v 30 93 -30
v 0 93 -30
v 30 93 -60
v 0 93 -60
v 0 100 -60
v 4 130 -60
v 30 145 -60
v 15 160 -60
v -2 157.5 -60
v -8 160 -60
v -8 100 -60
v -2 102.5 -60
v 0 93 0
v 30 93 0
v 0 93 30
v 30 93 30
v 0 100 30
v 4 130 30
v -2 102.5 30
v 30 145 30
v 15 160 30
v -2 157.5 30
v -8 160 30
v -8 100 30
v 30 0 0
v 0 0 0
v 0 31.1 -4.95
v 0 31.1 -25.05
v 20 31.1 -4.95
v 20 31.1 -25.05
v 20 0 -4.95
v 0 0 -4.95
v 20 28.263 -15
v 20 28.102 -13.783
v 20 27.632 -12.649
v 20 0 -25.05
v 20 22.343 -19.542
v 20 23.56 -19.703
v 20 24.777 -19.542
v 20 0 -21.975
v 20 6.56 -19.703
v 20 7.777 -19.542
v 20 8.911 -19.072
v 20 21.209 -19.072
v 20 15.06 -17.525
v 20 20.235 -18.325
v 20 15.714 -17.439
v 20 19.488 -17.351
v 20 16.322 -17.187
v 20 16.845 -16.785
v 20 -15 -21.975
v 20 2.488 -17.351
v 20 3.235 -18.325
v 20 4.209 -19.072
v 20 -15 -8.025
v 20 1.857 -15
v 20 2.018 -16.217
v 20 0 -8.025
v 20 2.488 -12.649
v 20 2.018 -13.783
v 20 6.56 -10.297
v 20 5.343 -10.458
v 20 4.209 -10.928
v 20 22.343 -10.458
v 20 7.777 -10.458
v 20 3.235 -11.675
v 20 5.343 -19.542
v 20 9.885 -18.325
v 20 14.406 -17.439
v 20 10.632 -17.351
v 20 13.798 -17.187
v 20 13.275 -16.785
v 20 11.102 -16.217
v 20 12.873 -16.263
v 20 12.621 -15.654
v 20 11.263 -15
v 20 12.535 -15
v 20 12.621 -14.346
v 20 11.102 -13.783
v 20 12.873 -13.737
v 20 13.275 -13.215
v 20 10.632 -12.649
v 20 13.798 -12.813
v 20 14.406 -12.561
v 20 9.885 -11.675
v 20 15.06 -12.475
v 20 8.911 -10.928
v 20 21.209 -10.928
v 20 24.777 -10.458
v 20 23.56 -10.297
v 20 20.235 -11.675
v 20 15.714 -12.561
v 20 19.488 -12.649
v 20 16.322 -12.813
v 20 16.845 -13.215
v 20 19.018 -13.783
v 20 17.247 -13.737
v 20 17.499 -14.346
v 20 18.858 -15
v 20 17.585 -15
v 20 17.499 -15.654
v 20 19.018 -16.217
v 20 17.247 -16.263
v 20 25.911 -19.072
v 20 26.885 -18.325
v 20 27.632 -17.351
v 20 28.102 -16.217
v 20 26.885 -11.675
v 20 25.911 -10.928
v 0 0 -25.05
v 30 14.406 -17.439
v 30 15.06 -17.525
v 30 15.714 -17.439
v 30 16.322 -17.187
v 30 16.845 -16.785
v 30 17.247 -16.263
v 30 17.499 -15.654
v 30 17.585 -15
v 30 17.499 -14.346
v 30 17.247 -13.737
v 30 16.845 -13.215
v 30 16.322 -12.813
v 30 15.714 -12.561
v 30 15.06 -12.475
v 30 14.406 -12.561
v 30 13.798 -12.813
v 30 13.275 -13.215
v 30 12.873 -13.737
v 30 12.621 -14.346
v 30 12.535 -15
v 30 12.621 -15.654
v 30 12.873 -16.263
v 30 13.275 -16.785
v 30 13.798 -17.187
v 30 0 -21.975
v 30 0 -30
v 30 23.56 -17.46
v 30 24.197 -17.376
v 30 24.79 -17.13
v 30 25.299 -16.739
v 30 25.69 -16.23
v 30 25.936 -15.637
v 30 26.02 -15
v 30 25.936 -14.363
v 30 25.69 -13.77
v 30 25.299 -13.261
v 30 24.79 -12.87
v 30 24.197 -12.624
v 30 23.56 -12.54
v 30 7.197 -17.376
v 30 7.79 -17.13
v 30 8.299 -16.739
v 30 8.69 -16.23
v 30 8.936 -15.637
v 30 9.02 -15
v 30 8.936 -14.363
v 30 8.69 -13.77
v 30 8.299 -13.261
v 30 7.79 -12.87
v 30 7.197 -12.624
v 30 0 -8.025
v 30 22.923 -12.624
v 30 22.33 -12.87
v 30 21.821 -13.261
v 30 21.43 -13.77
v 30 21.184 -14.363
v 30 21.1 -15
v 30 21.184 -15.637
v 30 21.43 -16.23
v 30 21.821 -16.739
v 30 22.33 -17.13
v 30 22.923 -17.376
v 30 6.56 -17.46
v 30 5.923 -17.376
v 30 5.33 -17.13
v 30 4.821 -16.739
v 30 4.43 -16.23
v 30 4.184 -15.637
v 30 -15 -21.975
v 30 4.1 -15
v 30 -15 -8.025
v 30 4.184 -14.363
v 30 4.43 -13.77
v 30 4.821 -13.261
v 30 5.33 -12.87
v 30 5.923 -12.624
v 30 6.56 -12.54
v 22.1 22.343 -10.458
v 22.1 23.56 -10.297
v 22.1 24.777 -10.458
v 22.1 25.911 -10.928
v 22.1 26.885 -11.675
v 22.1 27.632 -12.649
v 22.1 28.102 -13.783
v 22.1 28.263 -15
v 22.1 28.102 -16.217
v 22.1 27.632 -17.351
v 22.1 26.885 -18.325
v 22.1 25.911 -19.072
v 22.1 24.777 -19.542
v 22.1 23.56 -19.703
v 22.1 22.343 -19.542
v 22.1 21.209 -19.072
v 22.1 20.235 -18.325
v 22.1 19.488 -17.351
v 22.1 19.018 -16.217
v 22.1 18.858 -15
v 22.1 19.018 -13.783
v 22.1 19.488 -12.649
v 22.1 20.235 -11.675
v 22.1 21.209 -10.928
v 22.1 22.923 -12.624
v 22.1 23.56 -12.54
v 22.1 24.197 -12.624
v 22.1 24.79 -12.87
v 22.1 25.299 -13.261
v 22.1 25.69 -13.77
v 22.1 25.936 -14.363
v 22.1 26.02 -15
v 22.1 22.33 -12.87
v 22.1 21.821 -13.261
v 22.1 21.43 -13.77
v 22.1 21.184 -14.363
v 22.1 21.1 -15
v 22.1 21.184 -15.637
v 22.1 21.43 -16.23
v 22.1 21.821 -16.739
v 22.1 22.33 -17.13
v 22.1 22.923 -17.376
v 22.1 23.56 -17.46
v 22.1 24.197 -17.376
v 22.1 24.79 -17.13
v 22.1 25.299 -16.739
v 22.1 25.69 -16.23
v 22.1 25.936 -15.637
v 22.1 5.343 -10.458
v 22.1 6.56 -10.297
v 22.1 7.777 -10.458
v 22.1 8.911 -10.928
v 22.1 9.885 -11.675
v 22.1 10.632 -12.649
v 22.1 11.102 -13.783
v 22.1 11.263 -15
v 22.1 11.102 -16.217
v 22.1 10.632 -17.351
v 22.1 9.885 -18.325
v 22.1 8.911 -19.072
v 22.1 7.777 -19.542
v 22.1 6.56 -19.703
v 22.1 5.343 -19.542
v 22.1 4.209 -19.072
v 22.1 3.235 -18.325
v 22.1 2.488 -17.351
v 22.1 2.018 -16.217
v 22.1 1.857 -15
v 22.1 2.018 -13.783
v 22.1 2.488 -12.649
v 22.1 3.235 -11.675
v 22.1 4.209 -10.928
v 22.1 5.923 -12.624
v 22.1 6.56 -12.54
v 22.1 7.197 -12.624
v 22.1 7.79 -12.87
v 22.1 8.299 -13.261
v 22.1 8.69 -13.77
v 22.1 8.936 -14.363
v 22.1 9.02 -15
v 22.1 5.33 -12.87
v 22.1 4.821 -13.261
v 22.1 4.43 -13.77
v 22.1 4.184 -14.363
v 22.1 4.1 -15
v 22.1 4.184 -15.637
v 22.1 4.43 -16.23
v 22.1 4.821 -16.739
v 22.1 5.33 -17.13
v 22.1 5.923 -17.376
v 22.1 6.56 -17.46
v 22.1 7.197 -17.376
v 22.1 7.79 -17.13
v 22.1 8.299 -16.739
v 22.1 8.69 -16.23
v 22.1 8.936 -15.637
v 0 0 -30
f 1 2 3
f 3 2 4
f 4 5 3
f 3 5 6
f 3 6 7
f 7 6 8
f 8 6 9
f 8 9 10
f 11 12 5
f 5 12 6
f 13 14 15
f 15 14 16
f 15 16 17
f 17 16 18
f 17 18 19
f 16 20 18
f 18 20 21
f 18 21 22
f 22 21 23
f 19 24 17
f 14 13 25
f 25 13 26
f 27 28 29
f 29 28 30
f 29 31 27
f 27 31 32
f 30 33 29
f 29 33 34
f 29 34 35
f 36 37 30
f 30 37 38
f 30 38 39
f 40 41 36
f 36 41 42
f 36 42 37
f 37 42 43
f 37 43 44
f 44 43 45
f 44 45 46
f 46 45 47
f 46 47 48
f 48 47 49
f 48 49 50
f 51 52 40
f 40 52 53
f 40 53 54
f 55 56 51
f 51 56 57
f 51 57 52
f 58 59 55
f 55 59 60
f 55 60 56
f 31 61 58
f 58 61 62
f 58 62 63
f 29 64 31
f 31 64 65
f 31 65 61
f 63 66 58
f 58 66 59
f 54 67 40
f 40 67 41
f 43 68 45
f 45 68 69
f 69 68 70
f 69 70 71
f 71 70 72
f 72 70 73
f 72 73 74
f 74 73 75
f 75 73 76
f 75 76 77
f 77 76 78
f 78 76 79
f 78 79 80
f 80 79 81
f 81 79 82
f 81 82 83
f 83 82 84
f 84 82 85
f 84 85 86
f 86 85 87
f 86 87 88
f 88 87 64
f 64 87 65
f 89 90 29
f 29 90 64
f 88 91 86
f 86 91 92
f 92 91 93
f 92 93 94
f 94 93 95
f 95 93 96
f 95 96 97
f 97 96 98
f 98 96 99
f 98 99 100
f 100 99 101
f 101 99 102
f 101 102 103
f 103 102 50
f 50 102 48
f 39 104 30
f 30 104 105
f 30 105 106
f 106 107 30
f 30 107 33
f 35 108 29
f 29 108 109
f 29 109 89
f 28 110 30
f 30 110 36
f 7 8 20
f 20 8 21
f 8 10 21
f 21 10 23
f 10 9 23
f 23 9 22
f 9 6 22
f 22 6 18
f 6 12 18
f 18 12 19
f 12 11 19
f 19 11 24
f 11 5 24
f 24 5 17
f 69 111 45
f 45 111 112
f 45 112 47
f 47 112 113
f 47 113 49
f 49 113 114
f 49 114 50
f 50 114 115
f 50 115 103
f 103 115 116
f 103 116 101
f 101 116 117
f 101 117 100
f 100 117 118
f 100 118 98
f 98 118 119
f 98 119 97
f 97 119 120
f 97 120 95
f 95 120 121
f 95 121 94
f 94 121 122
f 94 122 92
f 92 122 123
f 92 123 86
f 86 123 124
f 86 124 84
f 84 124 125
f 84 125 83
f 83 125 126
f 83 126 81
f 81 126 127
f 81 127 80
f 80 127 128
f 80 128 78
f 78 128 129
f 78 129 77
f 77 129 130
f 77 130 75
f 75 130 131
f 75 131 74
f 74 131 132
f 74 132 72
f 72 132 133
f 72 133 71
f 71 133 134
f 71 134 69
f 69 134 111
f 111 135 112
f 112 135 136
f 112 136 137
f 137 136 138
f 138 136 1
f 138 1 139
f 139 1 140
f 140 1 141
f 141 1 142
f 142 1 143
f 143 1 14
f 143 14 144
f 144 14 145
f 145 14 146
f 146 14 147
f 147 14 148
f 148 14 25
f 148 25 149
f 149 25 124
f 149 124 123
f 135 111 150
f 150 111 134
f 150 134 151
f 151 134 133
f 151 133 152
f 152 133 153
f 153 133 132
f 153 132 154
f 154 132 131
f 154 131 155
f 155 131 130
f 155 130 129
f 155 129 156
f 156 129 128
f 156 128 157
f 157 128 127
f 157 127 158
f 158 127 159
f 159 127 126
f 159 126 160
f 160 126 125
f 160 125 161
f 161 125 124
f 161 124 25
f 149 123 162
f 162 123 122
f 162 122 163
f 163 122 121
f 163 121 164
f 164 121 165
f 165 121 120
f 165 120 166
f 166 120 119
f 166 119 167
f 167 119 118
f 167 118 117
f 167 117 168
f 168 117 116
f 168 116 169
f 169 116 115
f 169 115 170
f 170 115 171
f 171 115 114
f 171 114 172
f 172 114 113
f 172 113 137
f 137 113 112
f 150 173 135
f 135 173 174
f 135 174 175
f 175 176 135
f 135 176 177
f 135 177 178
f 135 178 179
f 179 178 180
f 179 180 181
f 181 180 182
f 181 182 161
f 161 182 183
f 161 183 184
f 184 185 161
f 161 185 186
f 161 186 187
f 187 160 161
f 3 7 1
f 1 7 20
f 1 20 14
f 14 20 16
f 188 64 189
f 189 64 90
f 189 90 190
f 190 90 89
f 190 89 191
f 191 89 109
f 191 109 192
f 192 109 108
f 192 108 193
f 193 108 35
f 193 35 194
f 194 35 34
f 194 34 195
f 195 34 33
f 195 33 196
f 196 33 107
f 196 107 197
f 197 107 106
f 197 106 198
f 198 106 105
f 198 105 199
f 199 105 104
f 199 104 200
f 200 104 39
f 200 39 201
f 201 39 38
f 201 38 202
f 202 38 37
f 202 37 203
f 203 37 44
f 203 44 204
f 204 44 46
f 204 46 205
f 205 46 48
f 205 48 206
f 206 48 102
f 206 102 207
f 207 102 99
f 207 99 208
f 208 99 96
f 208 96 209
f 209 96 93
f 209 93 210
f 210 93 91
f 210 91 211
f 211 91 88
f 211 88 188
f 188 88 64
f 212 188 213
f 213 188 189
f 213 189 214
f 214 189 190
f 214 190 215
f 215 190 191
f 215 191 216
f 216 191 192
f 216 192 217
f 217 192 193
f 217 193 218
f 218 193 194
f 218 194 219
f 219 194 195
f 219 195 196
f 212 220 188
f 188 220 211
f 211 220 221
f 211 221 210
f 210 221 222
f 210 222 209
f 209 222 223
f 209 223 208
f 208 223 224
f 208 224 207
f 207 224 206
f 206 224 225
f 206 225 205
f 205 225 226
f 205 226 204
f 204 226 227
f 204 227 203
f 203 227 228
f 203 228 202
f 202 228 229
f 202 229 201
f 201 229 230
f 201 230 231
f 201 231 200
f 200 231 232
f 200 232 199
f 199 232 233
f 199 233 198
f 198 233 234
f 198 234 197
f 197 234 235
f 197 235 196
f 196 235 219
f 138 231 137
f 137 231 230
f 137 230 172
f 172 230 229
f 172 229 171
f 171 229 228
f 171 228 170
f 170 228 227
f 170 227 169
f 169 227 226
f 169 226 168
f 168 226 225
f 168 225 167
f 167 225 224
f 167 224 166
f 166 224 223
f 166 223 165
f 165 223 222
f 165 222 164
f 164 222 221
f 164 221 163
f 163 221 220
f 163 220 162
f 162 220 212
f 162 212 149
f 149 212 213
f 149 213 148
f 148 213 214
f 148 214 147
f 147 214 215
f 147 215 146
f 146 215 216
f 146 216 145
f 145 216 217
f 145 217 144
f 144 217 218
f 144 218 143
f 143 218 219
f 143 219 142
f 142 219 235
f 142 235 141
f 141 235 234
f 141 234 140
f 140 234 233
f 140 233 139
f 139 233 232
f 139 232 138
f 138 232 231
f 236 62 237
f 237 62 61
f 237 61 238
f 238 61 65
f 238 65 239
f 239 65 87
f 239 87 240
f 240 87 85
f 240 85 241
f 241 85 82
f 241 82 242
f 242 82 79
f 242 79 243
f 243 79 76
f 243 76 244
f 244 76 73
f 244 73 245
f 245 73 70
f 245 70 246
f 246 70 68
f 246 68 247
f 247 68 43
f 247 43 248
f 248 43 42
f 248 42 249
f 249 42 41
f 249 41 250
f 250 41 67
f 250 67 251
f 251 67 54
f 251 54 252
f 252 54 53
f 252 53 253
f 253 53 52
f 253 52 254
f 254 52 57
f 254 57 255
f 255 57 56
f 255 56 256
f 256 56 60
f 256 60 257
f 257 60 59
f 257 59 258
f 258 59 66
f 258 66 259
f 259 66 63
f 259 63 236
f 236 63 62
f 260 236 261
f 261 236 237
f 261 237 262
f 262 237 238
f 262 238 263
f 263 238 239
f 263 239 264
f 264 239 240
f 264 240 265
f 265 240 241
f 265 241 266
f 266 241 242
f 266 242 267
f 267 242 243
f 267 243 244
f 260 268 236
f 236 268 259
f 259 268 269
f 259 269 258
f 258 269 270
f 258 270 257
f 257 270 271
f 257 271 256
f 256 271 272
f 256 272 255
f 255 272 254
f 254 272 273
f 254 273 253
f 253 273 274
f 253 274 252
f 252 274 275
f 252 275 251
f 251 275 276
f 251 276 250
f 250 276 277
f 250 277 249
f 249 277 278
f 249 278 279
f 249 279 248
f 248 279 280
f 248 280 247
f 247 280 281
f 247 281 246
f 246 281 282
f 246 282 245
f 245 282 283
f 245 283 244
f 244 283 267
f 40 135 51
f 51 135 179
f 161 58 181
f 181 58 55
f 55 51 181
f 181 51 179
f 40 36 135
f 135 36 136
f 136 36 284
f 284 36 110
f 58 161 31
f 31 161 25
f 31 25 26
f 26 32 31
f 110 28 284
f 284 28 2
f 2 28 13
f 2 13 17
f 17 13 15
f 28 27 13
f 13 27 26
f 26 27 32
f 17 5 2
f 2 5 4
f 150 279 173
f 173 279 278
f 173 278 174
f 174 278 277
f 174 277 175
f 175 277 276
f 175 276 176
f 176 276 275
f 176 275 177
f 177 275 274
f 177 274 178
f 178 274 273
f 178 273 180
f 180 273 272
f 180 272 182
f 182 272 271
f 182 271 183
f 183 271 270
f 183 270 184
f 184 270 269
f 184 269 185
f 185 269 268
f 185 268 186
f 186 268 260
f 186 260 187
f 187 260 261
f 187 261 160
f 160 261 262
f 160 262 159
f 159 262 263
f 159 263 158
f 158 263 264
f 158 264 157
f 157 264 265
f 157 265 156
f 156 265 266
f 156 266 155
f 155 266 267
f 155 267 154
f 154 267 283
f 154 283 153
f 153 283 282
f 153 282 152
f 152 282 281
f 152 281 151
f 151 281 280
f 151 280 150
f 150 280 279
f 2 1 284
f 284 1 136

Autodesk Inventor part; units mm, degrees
ref_plane "YZ Plane" through (0, 0, 0) normal (1, 0, 0) x (0, 1, 0)
ref_plane "XZ Plane" through (0, 0, 0) normal (0, 1, 0) x (-1, 0, 0)
sketch "Sketch1" plane through (0, 0, 0) normal (0, 0, 1) x (1, 0, 0)
  line L0 (0, 0) -> (25, 0)
  line L1 (25, 0) -> (25, 40)
  line L2 (25, 40) -> (0, 40)
  line L3 (0, 40) -> (0, 0)
  dimension "d1" = 25
  dimension "d2" = 40
  dimension "d3" = 25
extrude "Extrusion1" add sketch "Sketch1" against normal blind 30
sketch "Sketch2" plane through (25, 0, 0) normal (1, 0, 0) x (0, 0, -1)
  line L0 (0, 0) -> (30, 0) projected
  circle A0 centre (15, 6.56) radius 2.46
extrude "Extrusion2" cut sketch "Sketch2" against normal blind 30
sketch "Sketch3" plane through (0, 0, 0) normal (-1, 0, 0) x (0, 0, 1)
  line L0 (0, 0) -> (-30, 0) projected
  line L1 (-25.05, 0) -> (-4.95, 0)
  line L2 (-4.95, 0) -> (-4.95, 33.12)
  line L3 (-4.95, 33.12) -> (-25.05, 33.12)
  line L4 (-25.05, 33.12) -> (-25.05, 0)
  dimension "d11" = 20.1
extrude "Extrusion3" cut sketch "Sketch3" against normal blind 20
sketch "Sketch4" plane through (0, 0, 0) normal (0, -1, 0) x (1, 0, 0)
  line L0 (20, -4.95) -> (20, -25.05) projected
  line L1 (20, -15) -> (25, -15)
  line L2 (25, 0) -> (25, -30) projected
  line L3 (20, -8.025) -> (25, -8.025)
  line L4 (25, -8.025) -> (25, -21.975)
  line L5 (25, -21.975) -> (20, -21.975)
  line L6 (20, -21.975) -> (20, -8.025)
  line L7 (20, -8.025) -> (25, -21.975) construction
  line L8 (25, -8.025) -> (20, -21.975) construction
  line L9 (25, -12.54) -> (25, -17.46) projected
  point P0 (0, 0)
  point P1 (22.5, -15)
  dimension "d14" = 13.95
extrude "Extrusion4" add sketch "Sketch4" along normal blind 15
sketch "Sketch5" plane through (20, 0, 0) normal (-1, 0, 0) x (0, 0, 1)
  circle A0 centre (-15, 6.56) radius 2.46 projected
  circle A1 centre (-15, 6.56) radius 4.7025
  circle A2 centre (-15, 6.56) radius 2.46 projected
  circle A3 centre (-15, 6.56) radius 2.46
  point P0 (0, 0)
  dimension "d17" = 9.405
extrude "Extrusion5" cut sketch "Sketch5" against normal blind 2.1
sketch "Sketch6" plane through (25, 0, 0) normal (1, 0, 0) x (0, 0, -1)
  circle A0 centre (15, 6.56) radius 4.7025 projected
  line L0 (15, 6.56) -> (15, 23.56)
  circle A1 centre (15, 23.56) radius 2.46
  point P0 (0, 0)
  dimension "d20" = 17
  dimension "d21" = 4.92
extrude "Extrusion6" cut sketch "Sketch6" against normal blind 10 contours A1
sketch "Sketch7" plane through (20, 0, 0) normal (-1, 0, 0) x (0, 0, 1)
  circle A0 centre (-15, 23.56) radius 2.46 projected
  circle A1 centre (-15, 23.56) radius 4.7025
  point P0 (0, 0)
  dimension "d24" = 9.405
extrude "Extrusion7" cut sketch "Sketch7" against normal blind 2.1
sketch "Sketch9" plane through (25, 0, 0) normal (1, 0, 0) x (0, 0, -1)
  circle A0 centre (15, 6.56) radius 2.46 projected
  circle A1 centre (15, 6.56) radius 2.46
  circle A2 centre (15, 23.56) radius 2.46 projected
  circle A3 centre (15, 23.56) radius 2.46
  line L0 (30, 40) -> (30, 0) projected
  line L1 (30, 0) -> (30, 40)
  line L2 (30, 40) -> (0, 40)
  line L3 (0, 40) -> (0, 0)
  line L4 (0, 0) -> (8.025, 0) projected
  line L5 (21.975, 0) -> (21.975, -15)
  line L6 (21.975, -15) -> (8.025, -15)
  line L7 (8.025, -15) -> (8.025, 0)
  line L8 (0, 0) -> (8.025, 0)
  line L9 (21.975, 0) -> (30, 0)
extrude "Extrusion8" add sketch "Sketch9" along normal blind 5
sketch "Sketch10" plane through (0, 40, 0) normal (0, 1, 0) x (1, 0, 0)
  line L0 (0, 30) -> (30, 30) projected
  line L1 (30, 0) -> (0, 0) projected
  line L2 (0, 30) -> (30, 30)
  line L3 (30, 30) -> (30, 0)
  line L4 (30, 0) -> (0, 0)
  line L5 (0, 0) -> (0, 30)
extrude "Extrusion9" add sketch "Sketch10" along normal blind 30
sketch "Sketch12" plane through (30, 0, 0) normal (1, 0, 0) x (0, 0, -1)
  circle A0 centre (15, 6.56) radius 2.46 projected
  line L0 (15, 6.56) -> (15, 15.06)
  circle A1 centre (15, 15.06) radius 2.525
  point P0 (0, 0)
  dimension "d31" = 8.5
  dimension "d33" = 5.05
extrude "Extrusion10" cut sketch "Sketch12" against normal blind 30 contours A1
sketch "Sketch14" plane through (0, 0, 0) normal (0, 0, 1) x (1, 0, 0)
  line L0 (30, 70) -> (0, 70) projected
  line L1 (0, 100) -> (-8, 100)
  line L2 (30, 0) -> (30, 70) projected
  line L3 (30, 118) -> (30, 70)
  line L4 (30, 105) -> (30, 100)
  line L5 (0, 70) -> (30, 70) projected
  line L6 (0, 70) -> (0, 100)
  line L7 (30, 122.5) -> (30, 118)
  line L8 (30, 70) -> (30, 145)
  line L9 (-2, 157.5) -> (-8, 160)
  line L10 (-2, 102.5) -> (-8, 100)
  line L11 (4, 130) -> (-2, 102.5)
  line L12 (4, 130) -> (-2, 157.5)
  line L13 (-8, 160) -> (15, 160)
  line L14 (30, 145) -> (15, 160)
  point P0 (0, 0)
  dimension "d47" = 30
extrude "Extrusion12" add sketch "Sketch14" against normal blind 30
sketch "Sketch15" plane through (0, 0, -25.05) normal (-1, 0, 0) x (0, 0, 1)
  line L0 (0, 33.12) -> (20.1, 33.12) projected
  line L1 (20.1, 33.12) -> (20.1, 0) projected
  line L2 (0, 33.12) -> (20.1, 33.12)
  line L3 (20.1, 33.12) -> (20.1, 31.1)
  line L4 (20.1, 31.1) -> (0, 31.1)
  line L5 (0, 31.1) -> (0, 33.12)
  point P0 (25.05, 0)
  dimension "d57" = 2.02
extrude "Extrusion13" add sketch "Sketch15" against normal blind 20
sketch "Sketch27" plane through (0, 0, 0) normal (0, 0, 1) x (1, 0, 0)
  point P0 (0, 0)
sketch "Sketch28" plane through (0, 0, 0) normal (0, 0, 1) x (1, 0, 0)
  line L0 (0, 100) -> (-8, 100) projected
  line L1 (0, 100) -> (-8, 100)
  line L2 (-8, 100) -> (-2, 102.5) projected
  line L3 (-8, 100) -> (-2, 102.5)
  line L4 (-2, 102.5) -> (4, 130) projected
  line L5 (-2, 102.5) -> (4, 130)
  line L6 (4, 130) -> (-2, 157.5) projected
  line L7 (4, 130) -> (-2, 157.5)
  line L8 (-2, 157.5) -> (-8, 160) projected
  line L9 (-2, 157.5) -> (-8, 160)
  line L10 (-8, 160) -> (15, 160) projected
  line L11 (-8, 160) -> (15, 160)
  line L12 (15, 160) -> (30, 145) projected
  line L13 (15, 160) -> (30, 145)
  line L14 (30, 145) -> (30, 93)
  line L15 (30, 0) -> (30, 145) projected
  line L16 (30, 93) -> (0, 93)
  line L17 (0, 0) -> (0, 100) projected
  line L18 (0, 93) -> (0, 100)
  dimension "d98" = 52
extrude "Extrusion14" add sketch "Sketch28" along normal blind 30
ref_plane "Work Plane1" through (0, 0, -15) normal (0, 0, 1) x (1, 0, 0)
mirror "Mirror1" about plane through (0, 0, -15) normal (0, 0, 1) of "Extrusion14"
properties part number "55mm_x_90mm"
